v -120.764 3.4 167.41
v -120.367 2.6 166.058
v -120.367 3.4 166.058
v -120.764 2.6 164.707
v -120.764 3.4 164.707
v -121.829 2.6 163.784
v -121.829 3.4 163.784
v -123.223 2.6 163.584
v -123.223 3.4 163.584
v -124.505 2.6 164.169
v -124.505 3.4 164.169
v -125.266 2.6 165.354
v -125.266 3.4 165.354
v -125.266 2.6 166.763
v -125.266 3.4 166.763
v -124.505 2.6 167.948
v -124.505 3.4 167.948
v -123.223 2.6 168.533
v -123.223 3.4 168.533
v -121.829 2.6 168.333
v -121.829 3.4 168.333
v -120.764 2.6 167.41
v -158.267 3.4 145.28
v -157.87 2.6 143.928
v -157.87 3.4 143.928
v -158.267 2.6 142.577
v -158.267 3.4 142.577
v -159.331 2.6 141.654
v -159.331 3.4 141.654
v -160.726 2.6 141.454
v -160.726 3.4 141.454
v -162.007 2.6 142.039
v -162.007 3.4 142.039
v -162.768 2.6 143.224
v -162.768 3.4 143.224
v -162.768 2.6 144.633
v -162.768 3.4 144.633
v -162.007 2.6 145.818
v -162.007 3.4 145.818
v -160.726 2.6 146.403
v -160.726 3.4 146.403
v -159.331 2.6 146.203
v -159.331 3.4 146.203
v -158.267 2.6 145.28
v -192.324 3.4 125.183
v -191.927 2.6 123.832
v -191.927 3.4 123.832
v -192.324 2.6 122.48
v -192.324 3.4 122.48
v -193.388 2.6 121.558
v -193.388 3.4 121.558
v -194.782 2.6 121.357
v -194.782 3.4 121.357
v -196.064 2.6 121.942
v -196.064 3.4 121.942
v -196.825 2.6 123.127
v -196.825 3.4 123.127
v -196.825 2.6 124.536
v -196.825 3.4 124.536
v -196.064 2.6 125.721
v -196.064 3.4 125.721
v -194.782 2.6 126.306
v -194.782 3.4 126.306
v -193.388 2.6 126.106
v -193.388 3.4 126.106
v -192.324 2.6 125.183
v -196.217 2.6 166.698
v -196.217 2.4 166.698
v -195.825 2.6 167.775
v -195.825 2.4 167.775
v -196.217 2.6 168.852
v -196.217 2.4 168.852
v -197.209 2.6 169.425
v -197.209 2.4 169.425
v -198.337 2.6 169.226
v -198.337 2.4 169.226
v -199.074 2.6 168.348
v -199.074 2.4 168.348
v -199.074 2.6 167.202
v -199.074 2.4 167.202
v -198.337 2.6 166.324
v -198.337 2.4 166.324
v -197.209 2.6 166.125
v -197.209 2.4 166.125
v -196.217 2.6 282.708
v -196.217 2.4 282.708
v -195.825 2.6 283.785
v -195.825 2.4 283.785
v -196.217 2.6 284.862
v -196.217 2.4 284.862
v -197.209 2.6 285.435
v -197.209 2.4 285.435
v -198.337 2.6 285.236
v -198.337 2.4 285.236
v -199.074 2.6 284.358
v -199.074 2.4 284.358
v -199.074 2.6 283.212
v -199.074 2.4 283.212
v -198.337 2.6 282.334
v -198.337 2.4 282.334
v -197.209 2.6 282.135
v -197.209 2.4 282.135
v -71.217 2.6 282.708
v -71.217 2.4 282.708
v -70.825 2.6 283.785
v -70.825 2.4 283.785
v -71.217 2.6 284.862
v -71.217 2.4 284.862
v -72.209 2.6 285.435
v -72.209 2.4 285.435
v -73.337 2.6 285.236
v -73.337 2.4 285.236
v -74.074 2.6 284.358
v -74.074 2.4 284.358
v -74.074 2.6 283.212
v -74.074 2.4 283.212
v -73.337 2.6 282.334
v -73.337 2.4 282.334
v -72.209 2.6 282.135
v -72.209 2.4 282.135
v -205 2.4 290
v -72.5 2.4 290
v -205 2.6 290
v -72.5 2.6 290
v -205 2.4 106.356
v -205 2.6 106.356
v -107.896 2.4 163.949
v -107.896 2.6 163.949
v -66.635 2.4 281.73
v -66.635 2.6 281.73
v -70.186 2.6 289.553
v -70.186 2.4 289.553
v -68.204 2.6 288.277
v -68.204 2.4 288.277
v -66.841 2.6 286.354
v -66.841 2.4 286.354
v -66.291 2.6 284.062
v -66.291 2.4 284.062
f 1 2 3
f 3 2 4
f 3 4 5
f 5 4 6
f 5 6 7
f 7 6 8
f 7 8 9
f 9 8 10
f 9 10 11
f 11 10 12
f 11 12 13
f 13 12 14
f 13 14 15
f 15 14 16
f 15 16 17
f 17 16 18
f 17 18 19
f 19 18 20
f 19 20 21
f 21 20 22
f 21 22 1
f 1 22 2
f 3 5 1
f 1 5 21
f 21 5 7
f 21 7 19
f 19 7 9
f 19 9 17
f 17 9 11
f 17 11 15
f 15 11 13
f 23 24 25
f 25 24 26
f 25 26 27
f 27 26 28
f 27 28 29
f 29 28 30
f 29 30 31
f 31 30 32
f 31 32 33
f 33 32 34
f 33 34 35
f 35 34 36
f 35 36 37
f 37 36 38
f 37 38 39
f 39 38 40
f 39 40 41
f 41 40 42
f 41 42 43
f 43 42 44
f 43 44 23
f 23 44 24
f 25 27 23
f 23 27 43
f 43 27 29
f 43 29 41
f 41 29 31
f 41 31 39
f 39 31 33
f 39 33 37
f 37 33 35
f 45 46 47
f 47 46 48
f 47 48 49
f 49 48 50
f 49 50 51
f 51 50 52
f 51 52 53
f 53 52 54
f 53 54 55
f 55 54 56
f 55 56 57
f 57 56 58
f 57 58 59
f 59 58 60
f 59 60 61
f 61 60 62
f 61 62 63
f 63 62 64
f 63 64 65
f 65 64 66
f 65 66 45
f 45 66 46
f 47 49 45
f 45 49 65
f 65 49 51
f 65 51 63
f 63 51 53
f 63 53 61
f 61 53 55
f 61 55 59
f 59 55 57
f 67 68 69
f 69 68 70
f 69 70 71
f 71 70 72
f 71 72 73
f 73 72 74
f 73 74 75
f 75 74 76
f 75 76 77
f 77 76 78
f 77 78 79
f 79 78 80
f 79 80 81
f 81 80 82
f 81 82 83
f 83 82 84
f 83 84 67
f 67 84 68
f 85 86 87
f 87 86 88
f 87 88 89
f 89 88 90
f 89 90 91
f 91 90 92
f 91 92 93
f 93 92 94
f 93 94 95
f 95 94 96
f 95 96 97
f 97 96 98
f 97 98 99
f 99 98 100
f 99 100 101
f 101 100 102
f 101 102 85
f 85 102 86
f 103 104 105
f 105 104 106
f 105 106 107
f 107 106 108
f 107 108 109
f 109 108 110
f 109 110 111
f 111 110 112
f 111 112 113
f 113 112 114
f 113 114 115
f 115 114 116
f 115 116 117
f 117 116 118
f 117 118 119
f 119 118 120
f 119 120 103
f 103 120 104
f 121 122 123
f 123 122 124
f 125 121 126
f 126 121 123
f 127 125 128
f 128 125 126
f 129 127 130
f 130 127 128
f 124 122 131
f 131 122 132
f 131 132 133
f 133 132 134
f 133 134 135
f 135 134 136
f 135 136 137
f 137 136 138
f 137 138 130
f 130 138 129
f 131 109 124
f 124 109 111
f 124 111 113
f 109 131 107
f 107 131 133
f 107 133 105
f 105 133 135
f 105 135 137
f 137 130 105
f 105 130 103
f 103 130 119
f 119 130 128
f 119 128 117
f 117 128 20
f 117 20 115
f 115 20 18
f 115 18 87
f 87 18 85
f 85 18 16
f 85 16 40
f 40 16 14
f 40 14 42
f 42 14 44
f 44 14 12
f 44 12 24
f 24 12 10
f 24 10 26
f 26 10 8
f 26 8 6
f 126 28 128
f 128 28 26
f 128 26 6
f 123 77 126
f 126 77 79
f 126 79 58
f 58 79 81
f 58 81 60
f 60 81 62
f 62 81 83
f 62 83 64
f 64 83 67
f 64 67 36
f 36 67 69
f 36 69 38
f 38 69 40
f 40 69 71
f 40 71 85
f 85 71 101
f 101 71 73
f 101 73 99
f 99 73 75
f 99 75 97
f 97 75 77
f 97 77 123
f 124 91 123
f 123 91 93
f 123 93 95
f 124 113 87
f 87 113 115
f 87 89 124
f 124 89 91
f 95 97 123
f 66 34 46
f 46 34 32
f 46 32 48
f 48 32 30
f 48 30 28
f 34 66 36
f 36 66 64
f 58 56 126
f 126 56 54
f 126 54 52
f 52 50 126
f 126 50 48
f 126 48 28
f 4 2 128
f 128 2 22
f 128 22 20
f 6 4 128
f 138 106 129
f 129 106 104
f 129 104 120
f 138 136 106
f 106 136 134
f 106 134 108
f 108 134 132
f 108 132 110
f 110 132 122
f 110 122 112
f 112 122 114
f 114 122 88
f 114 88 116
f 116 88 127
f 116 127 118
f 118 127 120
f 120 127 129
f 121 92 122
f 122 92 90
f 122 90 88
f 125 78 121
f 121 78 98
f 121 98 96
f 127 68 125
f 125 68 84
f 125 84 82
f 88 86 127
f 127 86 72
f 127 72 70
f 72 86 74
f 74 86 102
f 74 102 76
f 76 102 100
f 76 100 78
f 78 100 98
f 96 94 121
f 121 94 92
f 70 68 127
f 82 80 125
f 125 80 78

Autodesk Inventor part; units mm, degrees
ref_plane "YZ Plane" through (0, 0, 0) normal (1, 0, 0) x (0, 1, 0)
ref_plane "Work Plane1" through (-205, 2.4, 12.8522) normal (0, 1, 0) x (1, 0, 0)
sketch "Sketch1" plane through (-205, 2.4, 12.8522) normal (0, 1, 0) x (1, 0, 0)
  line L0 (138.3655, -268.878) -> (91, -133.6728) projected
  line L1 (97.1039, -151.0965) -> (0, -93.5034)
  line L2 (0, 0) -> (0, -277.1478) projected
  circle A0 centre (132.5, -270.9328) radius 1.675 projected
  circle A1 centre (132.5, -270.9328) radius 6.215
  line L3 (138.3655, -268.878) -> (97.1039, -151.0965)
  line L4 (132.5, -277.1478) -> (0, -277.1478)
  line L5 (0, -277.1478) -> (0, -93.5034)
  circle A2 centre (82.1326, -153.2062) radius 2.5 projected
  circle A3 centre (82.1326, -153.2062) radius 2.5
  circle A4 centre (44.6303, -131.0762) radius 2.5 projected
  circle A5 centre (44.6303, -131.0762) radius 2.5
  circle A6 centre (10.5733, -110.9794) radius 2.5 projected
  circle A7 centre (10.5733, -110.9794) radius 2.5
  circle A8 centre (7.5, -154.9228) radius 1.675 projected
  circle A9 centre (7.5, -154.9228) radius 1.675
  circle A10 centre (7.5, -270.9328) radius 1.675
  point P0 (205, 12.8522)
extrude "Extrusion1" add sketch "Sketch1" along normal blind 0.2
ref_plane "Work Plane2" through (-205, 2.4, 12.8522) normal (0, 1, 0) x (1, 0, 0)
sketch "Sketch2" plane through (-205, 2.4, 12.8522) normal (0, 1, 0) x (1, 0, 0)
  circle A0 centre (82.1326, -153.2062) radius 2.5 projected
  circle A1 centre (82.1326, -153.2062) radius 2.5
  circle A2 centre (44.6303, -131.0762) radius 2.5 projected
  circle A3 centre (44.6303, -131.0762) radius 2.5
  circle A4 centre (10.5733, -110.9794) radius 2.5 projected
  circle A5 centre (10.5733, -110.9794) radius 2.5
  point P0 (205, 12.8522)
extrude "Extrusion2" add sketch "Sketch2" along normal blind 1
properties part number "base_main_pcb_p2_itr3"
